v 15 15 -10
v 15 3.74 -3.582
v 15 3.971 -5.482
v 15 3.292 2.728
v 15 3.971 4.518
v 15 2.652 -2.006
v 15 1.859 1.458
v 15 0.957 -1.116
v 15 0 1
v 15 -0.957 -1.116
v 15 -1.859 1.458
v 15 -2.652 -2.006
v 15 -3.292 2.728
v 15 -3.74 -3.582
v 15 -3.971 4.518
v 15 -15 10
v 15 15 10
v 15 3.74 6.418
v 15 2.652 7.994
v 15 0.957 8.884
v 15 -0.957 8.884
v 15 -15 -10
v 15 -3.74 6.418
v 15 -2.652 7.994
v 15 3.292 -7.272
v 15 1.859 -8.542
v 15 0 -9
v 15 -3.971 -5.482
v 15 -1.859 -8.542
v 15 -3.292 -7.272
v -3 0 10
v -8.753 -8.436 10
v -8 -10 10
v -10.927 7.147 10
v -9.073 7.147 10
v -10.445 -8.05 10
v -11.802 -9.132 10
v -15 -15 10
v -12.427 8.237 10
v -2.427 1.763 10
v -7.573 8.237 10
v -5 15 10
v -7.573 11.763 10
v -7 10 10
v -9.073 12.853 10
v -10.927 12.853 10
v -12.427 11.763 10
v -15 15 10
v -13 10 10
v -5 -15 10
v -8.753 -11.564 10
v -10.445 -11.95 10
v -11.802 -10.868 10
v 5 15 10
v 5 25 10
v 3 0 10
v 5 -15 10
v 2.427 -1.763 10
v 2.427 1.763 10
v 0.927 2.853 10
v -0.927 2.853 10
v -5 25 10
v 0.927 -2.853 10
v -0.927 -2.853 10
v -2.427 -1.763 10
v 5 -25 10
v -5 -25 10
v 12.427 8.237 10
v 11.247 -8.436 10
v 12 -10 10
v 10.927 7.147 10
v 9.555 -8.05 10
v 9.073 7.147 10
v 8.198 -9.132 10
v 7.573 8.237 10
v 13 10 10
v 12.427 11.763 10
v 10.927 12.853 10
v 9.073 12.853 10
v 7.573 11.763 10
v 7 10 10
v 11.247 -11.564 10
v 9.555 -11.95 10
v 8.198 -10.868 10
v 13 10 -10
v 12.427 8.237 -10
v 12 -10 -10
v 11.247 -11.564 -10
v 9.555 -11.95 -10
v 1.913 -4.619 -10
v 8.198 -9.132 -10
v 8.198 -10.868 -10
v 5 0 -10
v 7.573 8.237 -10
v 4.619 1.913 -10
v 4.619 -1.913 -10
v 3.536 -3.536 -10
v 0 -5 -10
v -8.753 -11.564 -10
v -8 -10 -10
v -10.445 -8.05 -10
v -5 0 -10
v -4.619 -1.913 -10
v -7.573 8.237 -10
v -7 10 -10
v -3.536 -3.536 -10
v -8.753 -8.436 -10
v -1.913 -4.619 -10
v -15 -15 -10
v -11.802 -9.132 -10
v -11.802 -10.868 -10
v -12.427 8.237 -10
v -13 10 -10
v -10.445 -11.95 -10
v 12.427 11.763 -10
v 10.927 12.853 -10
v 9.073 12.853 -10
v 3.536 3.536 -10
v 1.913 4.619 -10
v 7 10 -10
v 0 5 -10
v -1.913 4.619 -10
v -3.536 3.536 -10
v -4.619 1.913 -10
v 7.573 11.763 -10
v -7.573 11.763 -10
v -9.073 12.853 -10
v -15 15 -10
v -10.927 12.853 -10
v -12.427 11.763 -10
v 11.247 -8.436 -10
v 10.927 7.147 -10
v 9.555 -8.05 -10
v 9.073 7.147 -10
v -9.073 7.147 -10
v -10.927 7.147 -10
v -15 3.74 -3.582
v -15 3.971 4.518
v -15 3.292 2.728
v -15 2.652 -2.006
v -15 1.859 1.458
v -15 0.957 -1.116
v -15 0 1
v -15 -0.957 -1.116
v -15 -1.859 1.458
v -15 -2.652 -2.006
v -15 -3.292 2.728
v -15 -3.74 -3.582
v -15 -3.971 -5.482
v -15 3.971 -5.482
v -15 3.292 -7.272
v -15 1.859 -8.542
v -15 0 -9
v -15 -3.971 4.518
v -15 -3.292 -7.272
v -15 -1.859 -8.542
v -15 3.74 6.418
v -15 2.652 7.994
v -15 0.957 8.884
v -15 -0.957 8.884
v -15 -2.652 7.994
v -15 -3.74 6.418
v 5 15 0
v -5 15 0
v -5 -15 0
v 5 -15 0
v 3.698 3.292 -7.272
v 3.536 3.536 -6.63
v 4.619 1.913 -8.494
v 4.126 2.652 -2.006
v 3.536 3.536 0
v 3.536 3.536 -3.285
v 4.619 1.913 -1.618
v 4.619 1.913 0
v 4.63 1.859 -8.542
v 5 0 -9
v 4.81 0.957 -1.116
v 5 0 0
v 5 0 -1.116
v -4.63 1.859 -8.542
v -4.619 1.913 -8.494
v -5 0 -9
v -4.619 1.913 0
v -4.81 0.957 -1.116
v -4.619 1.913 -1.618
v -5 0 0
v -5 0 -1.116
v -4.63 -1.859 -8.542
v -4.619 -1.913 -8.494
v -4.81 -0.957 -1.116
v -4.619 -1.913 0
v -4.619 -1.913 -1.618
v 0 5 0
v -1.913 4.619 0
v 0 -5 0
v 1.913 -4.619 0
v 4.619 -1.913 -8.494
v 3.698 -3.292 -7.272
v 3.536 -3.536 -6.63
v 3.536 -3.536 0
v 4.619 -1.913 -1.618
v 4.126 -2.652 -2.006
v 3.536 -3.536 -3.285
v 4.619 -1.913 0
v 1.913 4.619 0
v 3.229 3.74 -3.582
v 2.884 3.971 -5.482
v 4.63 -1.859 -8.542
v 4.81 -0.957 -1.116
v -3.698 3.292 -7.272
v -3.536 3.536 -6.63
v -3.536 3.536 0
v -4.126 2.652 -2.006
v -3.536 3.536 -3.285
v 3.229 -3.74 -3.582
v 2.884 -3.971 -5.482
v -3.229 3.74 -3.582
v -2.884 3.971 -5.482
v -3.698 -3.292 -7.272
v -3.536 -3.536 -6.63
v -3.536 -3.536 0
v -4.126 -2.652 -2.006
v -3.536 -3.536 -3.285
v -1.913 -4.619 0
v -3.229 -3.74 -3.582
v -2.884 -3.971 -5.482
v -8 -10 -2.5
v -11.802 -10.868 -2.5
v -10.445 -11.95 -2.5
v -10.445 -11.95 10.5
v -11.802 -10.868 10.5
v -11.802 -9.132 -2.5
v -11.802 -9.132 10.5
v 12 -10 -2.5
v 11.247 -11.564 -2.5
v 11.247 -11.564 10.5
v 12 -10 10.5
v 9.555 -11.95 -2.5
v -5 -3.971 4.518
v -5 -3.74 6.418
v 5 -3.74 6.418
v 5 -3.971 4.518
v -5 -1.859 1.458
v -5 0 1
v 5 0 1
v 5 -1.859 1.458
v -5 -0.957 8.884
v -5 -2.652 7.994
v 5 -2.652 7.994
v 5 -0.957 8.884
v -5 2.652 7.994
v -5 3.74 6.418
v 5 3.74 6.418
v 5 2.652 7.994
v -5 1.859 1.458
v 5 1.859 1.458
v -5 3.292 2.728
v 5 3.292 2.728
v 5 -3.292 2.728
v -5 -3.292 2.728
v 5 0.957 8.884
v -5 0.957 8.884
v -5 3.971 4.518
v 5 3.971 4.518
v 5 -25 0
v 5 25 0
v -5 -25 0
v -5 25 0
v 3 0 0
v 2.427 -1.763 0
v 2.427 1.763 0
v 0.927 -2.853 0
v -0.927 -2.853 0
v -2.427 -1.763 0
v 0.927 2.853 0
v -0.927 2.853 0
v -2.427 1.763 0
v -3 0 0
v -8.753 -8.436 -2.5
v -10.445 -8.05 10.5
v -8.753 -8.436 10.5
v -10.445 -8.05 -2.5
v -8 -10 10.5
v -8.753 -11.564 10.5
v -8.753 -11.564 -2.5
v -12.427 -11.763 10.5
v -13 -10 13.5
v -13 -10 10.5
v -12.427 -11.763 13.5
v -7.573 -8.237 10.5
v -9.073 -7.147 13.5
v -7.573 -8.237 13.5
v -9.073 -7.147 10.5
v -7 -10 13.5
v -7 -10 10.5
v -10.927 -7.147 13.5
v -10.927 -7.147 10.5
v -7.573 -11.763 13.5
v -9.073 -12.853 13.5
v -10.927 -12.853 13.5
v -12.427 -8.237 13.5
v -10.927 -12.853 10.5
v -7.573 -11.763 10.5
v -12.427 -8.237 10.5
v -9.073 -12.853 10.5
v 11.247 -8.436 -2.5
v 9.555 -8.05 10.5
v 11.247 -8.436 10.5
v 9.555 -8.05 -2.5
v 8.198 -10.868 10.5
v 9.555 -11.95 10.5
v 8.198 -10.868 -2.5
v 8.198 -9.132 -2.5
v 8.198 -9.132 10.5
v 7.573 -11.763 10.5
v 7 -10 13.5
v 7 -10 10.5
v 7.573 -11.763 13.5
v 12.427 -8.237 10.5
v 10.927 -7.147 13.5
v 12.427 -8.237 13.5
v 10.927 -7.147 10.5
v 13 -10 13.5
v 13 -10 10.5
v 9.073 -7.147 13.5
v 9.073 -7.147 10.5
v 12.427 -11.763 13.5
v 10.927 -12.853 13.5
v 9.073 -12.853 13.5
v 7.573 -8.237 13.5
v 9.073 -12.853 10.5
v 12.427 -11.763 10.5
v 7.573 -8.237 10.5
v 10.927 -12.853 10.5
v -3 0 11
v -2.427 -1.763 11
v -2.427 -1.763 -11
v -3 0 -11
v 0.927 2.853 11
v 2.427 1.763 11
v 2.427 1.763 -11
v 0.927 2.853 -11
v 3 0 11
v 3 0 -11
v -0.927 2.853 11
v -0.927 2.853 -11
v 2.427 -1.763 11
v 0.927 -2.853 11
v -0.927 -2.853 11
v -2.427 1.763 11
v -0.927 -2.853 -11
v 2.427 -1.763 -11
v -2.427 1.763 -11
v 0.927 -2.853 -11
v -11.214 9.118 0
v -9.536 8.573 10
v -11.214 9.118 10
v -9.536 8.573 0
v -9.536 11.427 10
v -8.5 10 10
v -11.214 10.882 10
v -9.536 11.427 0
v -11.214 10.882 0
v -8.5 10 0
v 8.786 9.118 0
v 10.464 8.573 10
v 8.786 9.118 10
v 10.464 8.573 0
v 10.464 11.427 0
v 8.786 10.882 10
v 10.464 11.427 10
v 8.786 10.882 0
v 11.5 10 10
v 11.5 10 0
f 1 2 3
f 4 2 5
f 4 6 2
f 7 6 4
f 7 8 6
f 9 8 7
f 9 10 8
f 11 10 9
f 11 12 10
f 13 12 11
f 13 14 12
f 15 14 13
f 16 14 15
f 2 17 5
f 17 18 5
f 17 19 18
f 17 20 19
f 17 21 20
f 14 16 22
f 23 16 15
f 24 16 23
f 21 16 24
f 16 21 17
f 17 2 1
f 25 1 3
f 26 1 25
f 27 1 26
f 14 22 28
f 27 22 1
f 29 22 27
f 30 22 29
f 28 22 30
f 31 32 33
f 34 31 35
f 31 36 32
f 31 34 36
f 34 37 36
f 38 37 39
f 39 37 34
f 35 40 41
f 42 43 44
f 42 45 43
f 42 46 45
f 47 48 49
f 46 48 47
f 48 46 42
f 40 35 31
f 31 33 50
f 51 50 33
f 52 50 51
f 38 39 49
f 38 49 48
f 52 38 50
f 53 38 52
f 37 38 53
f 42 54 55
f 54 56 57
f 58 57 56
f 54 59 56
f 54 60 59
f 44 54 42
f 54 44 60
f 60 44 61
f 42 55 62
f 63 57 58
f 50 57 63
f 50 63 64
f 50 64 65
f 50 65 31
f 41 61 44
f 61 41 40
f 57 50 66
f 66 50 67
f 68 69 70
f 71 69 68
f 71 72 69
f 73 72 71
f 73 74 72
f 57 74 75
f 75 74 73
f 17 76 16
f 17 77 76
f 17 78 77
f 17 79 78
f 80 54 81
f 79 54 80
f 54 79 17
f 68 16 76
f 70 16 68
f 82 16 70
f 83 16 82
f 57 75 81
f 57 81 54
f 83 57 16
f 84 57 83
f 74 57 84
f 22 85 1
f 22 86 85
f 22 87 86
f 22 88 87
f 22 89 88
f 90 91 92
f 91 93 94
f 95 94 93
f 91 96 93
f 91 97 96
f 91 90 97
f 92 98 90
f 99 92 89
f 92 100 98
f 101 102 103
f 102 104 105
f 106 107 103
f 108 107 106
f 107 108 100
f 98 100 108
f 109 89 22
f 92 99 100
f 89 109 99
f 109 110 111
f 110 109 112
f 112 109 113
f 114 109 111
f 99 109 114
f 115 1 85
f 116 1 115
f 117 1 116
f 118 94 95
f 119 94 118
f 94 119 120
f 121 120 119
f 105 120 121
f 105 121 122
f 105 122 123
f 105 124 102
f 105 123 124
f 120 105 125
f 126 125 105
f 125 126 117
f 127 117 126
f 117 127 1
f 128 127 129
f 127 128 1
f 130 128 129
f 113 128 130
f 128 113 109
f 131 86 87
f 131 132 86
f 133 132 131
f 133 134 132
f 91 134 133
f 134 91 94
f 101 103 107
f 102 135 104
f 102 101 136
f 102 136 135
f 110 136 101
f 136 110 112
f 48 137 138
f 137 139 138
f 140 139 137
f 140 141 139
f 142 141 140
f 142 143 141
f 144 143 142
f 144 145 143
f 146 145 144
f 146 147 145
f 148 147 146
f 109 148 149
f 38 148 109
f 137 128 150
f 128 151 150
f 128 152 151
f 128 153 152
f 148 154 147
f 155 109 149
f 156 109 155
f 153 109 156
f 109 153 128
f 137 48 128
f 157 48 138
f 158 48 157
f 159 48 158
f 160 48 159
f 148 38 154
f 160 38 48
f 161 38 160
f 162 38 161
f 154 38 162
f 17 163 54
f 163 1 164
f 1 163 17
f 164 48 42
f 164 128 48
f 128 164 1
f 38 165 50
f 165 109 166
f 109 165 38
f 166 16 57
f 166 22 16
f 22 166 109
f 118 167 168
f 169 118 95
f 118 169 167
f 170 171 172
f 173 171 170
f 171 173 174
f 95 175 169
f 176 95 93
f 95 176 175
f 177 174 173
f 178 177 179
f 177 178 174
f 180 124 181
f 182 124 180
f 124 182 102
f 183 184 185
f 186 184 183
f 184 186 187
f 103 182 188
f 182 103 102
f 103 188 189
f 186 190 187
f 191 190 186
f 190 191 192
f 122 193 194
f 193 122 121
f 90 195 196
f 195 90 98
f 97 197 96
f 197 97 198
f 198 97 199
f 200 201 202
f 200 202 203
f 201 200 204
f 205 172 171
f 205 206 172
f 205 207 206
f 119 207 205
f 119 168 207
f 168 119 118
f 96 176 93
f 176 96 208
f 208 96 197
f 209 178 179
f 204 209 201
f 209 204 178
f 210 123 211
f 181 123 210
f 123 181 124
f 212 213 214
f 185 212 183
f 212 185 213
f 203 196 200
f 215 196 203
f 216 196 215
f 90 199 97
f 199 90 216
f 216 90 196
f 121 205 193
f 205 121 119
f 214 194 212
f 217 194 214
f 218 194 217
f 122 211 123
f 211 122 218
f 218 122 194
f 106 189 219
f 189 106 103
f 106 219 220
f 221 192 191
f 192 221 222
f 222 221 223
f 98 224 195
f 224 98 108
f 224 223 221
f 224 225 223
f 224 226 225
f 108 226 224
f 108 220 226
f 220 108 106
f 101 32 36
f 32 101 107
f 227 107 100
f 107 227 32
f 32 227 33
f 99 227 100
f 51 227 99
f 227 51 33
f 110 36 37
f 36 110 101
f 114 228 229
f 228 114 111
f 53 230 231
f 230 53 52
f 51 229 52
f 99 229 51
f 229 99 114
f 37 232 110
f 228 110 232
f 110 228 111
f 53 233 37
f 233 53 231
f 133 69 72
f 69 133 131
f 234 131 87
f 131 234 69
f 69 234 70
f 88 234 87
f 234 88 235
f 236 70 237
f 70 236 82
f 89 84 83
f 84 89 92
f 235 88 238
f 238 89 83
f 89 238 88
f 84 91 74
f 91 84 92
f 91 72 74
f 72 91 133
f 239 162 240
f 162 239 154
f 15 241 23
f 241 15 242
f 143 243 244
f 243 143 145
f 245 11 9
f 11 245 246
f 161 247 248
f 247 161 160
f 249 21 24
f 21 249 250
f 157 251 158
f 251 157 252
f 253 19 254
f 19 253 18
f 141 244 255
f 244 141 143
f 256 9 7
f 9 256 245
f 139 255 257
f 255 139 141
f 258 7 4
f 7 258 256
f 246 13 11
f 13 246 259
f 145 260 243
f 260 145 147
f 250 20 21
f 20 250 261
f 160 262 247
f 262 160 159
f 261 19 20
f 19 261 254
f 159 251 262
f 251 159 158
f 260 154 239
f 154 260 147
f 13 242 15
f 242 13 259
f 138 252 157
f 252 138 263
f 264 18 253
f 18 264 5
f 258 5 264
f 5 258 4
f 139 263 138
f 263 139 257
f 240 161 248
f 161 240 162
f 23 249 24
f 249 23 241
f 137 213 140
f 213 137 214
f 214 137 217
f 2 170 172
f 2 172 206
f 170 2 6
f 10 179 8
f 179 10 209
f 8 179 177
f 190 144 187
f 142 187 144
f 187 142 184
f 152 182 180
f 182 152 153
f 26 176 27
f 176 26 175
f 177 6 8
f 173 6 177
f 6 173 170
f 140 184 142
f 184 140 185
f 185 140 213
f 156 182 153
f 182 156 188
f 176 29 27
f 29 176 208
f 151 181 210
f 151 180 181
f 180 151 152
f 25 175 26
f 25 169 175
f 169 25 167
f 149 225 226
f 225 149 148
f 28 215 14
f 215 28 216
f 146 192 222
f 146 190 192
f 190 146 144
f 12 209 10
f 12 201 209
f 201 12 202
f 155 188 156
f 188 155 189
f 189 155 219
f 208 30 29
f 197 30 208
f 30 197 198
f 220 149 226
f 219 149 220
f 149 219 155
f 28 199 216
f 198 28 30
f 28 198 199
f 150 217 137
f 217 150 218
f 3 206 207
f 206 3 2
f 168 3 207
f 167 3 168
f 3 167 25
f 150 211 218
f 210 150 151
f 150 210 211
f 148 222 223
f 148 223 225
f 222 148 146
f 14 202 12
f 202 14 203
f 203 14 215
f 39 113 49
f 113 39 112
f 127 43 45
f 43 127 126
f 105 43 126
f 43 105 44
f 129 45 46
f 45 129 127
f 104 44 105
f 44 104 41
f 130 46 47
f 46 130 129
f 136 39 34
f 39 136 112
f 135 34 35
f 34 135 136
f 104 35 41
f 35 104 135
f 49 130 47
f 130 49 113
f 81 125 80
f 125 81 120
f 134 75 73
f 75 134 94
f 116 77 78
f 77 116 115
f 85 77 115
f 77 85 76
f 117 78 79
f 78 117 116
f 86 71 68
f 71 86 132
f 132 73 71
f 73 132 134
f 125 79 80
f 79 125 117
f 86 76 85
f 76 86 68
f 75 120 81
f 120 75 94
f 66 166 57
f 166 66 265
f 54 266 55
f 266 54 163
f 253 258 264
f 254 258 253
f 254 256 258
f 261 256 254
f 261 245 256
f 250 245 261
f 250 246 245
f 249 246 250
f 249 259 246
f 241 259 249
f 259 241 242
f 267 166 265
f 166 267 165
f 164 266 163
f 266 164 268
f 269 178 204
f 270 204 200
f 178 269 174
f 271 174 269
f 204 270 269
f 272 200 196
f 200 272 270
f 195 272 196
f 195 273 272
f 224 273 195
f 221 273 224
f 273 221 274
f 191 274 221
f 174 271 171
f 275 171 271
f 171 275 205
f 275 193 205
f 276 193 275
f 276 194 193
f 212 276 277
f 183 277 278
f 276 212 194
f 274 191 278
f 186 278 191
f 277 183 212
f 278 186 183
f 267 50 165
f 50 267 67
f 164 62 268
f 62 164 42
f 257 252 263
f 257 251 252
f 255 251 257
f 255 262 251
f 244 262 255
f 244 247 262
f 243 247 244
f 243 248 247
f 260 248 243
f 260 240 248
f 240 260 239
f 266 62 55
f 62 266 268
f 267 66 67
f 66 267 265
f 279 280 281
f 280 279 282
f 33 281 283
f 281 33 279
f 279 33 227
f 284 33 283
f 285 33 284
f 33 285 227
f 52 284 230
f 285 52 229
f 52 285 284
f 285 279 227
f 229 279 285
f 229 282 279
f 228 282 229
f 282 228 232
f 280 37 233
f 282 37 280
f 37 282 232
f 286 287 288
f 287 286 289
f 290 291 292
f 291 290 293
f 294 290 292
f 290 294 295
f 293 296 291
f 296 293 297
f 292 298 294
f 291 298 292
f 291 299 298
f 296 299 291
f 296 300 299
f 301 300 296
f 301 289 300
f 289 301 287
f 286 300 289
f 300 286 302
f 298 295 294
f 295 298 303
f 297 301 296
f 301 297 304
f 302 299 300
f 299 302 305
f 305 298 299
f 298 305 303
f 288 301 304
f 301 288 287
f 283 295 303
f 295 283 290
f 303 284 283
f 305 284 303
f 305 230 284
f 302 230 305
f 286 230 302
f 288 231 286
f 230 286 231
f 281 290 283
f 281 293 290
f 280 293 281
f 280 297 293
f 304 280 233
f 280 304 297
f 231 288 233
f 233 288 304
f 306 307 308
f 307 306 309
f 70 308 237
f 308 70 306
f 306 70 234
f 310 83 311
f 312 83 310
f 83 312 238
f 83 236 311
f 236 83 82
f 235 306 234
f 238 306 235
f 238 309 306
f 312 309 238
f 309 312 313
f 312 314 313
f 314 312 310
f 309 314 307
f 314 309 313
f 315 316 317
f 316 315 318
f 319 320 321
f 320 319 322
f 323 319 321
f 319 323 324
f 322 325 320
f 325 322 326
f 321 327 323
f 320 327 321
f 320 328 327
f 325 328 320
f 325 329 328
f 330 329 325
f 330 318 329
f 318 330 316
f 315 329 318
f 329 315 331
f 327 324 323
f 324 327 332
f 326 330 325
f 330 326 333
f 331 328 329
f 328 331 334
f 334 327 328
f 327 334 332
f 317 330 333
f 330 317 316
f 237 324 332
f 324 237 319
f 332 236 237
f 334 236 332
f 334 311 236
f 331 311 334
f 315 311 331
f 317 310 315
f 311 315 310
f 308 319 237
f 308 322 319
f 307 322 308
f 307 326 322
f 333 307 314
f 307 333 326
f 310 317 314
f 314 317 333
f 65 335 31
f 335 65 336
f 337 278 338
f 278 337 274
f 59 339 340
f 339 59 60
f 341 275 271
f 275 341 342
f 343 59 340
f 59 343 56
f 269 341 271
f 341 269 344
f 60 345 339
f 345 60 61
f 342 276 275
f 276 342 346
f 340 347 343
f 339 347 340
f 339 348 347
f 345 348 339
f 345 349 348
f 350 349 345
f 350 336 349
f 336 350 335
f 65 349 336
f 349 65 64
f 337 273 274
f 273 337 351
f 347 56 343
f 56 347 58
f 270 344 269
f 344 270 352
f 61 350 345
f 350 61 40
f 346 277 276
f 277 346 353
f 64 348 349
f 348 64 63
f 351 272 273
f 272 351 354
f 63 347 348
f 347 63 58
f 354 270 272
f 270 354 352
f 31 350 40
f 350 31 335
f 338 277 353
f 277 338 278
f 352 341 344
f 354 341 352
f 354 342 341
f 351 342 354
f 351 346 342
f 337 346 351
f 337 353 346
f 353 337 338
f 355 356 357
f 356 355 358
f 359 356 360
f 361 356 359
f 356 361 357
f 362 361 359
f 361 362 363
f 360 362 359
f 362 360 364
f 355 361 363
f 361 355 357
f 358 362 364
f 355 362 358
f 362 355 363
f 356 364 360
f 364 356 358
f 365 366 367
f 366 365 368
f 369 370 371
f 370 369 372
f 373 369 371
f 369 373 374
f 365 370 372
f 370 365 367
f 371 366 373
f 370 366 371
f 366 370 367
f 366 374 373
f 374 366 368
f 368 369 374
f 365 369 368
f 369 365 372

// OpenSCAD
// Main body of the coupling with additional cutouts and recesses
module main_body() {
    difference() {
        cube([30, 30, 20], center = true);
        
        // Cylindrical recess for pivot pins
        translate([0, 0, 0])
            cylinder(h = 30, d = 10, center = true);
        
        // Mounting holes
        translate([-10, -10, 0])
            cylinder(h = 30, d = 4, center = true);
        translate([10, -10, 0])
            cylinder(h = 30, d = 4, center = true);
        
        // Additional curved slots for better integration
        translate([0, 0, 5])
            rotate([0, 90, 0])
            cylinder(h = 30, d = 8, center = true);
        translate([0, 0, -5])
            rotate([0, 90, 0])
            cylinder(h = 30, d = 8, center = true);
        
        // Extra recesses for mounting features
        translate([-10, 10, 0])
            cylinder(h = 30, d = 6, center = true);
        translate([10, 10, 0])
            cylinder(h = 30, d = 6, center = true);
    }
}

// Clamping jaw with curved gripping profile
module clamping_jaw() {
    difference() {
        cube([10, 30, 10], center = true);
        
        // Cylindrical cutout for gripping
        translate([0, 0, 0])
            rotate([0, 90, 0])
            cylinder(h = 30, d = 8, center = true);
        
        // Additional curved profile for better grip
        translate([0, 0, 5])
            rotate([0, 90, 0])
            cylinder(h = 30, d = 6, center = true);
    }
}

// Pivot pin with well-defined cylindrical shape
module pivot_pin() {
    cylinder(h = 12, d = 6, center = true);
}

// Fastening bolt in correct positions
module fastening_bolt() {
    union() {
        cylinder(h = 15, d = 4, center = true);
        translate([0, 0, 7])
            cylinder(h = 3, d = 6, center = true);
    }
}

// Locking screw for additional support
module locking_screw() {
    cylinder(h = 10, d = 3, center = true);
}

// Assembly with all components in correct positions
module assembly() {
    main_body();
    
    // Clamping jaws with correct gripping structure
    translate([0, 10, 5])
        clamping_jaw();
    translate([0, -10, 5])
        clamping_jaw();
    
    // Pivot pins for rotational movement
    translate([0, 0, 5])
        pivot_pin();
    translate([0, 0, -5])
        pivot_pin();
    
    // Fastening bolts in correct locations
    translate([-10, -10, 5])
        fastening_bolt();
    translate([10, -10, 5])
        fastening_bolt();
    
    // Locking screws for additional stability
    translate([-10, 10, 5])
        locking_screw();
    translate([10, 10, 5])
        locking_screw();
}

// Render the assembly
assembly();
